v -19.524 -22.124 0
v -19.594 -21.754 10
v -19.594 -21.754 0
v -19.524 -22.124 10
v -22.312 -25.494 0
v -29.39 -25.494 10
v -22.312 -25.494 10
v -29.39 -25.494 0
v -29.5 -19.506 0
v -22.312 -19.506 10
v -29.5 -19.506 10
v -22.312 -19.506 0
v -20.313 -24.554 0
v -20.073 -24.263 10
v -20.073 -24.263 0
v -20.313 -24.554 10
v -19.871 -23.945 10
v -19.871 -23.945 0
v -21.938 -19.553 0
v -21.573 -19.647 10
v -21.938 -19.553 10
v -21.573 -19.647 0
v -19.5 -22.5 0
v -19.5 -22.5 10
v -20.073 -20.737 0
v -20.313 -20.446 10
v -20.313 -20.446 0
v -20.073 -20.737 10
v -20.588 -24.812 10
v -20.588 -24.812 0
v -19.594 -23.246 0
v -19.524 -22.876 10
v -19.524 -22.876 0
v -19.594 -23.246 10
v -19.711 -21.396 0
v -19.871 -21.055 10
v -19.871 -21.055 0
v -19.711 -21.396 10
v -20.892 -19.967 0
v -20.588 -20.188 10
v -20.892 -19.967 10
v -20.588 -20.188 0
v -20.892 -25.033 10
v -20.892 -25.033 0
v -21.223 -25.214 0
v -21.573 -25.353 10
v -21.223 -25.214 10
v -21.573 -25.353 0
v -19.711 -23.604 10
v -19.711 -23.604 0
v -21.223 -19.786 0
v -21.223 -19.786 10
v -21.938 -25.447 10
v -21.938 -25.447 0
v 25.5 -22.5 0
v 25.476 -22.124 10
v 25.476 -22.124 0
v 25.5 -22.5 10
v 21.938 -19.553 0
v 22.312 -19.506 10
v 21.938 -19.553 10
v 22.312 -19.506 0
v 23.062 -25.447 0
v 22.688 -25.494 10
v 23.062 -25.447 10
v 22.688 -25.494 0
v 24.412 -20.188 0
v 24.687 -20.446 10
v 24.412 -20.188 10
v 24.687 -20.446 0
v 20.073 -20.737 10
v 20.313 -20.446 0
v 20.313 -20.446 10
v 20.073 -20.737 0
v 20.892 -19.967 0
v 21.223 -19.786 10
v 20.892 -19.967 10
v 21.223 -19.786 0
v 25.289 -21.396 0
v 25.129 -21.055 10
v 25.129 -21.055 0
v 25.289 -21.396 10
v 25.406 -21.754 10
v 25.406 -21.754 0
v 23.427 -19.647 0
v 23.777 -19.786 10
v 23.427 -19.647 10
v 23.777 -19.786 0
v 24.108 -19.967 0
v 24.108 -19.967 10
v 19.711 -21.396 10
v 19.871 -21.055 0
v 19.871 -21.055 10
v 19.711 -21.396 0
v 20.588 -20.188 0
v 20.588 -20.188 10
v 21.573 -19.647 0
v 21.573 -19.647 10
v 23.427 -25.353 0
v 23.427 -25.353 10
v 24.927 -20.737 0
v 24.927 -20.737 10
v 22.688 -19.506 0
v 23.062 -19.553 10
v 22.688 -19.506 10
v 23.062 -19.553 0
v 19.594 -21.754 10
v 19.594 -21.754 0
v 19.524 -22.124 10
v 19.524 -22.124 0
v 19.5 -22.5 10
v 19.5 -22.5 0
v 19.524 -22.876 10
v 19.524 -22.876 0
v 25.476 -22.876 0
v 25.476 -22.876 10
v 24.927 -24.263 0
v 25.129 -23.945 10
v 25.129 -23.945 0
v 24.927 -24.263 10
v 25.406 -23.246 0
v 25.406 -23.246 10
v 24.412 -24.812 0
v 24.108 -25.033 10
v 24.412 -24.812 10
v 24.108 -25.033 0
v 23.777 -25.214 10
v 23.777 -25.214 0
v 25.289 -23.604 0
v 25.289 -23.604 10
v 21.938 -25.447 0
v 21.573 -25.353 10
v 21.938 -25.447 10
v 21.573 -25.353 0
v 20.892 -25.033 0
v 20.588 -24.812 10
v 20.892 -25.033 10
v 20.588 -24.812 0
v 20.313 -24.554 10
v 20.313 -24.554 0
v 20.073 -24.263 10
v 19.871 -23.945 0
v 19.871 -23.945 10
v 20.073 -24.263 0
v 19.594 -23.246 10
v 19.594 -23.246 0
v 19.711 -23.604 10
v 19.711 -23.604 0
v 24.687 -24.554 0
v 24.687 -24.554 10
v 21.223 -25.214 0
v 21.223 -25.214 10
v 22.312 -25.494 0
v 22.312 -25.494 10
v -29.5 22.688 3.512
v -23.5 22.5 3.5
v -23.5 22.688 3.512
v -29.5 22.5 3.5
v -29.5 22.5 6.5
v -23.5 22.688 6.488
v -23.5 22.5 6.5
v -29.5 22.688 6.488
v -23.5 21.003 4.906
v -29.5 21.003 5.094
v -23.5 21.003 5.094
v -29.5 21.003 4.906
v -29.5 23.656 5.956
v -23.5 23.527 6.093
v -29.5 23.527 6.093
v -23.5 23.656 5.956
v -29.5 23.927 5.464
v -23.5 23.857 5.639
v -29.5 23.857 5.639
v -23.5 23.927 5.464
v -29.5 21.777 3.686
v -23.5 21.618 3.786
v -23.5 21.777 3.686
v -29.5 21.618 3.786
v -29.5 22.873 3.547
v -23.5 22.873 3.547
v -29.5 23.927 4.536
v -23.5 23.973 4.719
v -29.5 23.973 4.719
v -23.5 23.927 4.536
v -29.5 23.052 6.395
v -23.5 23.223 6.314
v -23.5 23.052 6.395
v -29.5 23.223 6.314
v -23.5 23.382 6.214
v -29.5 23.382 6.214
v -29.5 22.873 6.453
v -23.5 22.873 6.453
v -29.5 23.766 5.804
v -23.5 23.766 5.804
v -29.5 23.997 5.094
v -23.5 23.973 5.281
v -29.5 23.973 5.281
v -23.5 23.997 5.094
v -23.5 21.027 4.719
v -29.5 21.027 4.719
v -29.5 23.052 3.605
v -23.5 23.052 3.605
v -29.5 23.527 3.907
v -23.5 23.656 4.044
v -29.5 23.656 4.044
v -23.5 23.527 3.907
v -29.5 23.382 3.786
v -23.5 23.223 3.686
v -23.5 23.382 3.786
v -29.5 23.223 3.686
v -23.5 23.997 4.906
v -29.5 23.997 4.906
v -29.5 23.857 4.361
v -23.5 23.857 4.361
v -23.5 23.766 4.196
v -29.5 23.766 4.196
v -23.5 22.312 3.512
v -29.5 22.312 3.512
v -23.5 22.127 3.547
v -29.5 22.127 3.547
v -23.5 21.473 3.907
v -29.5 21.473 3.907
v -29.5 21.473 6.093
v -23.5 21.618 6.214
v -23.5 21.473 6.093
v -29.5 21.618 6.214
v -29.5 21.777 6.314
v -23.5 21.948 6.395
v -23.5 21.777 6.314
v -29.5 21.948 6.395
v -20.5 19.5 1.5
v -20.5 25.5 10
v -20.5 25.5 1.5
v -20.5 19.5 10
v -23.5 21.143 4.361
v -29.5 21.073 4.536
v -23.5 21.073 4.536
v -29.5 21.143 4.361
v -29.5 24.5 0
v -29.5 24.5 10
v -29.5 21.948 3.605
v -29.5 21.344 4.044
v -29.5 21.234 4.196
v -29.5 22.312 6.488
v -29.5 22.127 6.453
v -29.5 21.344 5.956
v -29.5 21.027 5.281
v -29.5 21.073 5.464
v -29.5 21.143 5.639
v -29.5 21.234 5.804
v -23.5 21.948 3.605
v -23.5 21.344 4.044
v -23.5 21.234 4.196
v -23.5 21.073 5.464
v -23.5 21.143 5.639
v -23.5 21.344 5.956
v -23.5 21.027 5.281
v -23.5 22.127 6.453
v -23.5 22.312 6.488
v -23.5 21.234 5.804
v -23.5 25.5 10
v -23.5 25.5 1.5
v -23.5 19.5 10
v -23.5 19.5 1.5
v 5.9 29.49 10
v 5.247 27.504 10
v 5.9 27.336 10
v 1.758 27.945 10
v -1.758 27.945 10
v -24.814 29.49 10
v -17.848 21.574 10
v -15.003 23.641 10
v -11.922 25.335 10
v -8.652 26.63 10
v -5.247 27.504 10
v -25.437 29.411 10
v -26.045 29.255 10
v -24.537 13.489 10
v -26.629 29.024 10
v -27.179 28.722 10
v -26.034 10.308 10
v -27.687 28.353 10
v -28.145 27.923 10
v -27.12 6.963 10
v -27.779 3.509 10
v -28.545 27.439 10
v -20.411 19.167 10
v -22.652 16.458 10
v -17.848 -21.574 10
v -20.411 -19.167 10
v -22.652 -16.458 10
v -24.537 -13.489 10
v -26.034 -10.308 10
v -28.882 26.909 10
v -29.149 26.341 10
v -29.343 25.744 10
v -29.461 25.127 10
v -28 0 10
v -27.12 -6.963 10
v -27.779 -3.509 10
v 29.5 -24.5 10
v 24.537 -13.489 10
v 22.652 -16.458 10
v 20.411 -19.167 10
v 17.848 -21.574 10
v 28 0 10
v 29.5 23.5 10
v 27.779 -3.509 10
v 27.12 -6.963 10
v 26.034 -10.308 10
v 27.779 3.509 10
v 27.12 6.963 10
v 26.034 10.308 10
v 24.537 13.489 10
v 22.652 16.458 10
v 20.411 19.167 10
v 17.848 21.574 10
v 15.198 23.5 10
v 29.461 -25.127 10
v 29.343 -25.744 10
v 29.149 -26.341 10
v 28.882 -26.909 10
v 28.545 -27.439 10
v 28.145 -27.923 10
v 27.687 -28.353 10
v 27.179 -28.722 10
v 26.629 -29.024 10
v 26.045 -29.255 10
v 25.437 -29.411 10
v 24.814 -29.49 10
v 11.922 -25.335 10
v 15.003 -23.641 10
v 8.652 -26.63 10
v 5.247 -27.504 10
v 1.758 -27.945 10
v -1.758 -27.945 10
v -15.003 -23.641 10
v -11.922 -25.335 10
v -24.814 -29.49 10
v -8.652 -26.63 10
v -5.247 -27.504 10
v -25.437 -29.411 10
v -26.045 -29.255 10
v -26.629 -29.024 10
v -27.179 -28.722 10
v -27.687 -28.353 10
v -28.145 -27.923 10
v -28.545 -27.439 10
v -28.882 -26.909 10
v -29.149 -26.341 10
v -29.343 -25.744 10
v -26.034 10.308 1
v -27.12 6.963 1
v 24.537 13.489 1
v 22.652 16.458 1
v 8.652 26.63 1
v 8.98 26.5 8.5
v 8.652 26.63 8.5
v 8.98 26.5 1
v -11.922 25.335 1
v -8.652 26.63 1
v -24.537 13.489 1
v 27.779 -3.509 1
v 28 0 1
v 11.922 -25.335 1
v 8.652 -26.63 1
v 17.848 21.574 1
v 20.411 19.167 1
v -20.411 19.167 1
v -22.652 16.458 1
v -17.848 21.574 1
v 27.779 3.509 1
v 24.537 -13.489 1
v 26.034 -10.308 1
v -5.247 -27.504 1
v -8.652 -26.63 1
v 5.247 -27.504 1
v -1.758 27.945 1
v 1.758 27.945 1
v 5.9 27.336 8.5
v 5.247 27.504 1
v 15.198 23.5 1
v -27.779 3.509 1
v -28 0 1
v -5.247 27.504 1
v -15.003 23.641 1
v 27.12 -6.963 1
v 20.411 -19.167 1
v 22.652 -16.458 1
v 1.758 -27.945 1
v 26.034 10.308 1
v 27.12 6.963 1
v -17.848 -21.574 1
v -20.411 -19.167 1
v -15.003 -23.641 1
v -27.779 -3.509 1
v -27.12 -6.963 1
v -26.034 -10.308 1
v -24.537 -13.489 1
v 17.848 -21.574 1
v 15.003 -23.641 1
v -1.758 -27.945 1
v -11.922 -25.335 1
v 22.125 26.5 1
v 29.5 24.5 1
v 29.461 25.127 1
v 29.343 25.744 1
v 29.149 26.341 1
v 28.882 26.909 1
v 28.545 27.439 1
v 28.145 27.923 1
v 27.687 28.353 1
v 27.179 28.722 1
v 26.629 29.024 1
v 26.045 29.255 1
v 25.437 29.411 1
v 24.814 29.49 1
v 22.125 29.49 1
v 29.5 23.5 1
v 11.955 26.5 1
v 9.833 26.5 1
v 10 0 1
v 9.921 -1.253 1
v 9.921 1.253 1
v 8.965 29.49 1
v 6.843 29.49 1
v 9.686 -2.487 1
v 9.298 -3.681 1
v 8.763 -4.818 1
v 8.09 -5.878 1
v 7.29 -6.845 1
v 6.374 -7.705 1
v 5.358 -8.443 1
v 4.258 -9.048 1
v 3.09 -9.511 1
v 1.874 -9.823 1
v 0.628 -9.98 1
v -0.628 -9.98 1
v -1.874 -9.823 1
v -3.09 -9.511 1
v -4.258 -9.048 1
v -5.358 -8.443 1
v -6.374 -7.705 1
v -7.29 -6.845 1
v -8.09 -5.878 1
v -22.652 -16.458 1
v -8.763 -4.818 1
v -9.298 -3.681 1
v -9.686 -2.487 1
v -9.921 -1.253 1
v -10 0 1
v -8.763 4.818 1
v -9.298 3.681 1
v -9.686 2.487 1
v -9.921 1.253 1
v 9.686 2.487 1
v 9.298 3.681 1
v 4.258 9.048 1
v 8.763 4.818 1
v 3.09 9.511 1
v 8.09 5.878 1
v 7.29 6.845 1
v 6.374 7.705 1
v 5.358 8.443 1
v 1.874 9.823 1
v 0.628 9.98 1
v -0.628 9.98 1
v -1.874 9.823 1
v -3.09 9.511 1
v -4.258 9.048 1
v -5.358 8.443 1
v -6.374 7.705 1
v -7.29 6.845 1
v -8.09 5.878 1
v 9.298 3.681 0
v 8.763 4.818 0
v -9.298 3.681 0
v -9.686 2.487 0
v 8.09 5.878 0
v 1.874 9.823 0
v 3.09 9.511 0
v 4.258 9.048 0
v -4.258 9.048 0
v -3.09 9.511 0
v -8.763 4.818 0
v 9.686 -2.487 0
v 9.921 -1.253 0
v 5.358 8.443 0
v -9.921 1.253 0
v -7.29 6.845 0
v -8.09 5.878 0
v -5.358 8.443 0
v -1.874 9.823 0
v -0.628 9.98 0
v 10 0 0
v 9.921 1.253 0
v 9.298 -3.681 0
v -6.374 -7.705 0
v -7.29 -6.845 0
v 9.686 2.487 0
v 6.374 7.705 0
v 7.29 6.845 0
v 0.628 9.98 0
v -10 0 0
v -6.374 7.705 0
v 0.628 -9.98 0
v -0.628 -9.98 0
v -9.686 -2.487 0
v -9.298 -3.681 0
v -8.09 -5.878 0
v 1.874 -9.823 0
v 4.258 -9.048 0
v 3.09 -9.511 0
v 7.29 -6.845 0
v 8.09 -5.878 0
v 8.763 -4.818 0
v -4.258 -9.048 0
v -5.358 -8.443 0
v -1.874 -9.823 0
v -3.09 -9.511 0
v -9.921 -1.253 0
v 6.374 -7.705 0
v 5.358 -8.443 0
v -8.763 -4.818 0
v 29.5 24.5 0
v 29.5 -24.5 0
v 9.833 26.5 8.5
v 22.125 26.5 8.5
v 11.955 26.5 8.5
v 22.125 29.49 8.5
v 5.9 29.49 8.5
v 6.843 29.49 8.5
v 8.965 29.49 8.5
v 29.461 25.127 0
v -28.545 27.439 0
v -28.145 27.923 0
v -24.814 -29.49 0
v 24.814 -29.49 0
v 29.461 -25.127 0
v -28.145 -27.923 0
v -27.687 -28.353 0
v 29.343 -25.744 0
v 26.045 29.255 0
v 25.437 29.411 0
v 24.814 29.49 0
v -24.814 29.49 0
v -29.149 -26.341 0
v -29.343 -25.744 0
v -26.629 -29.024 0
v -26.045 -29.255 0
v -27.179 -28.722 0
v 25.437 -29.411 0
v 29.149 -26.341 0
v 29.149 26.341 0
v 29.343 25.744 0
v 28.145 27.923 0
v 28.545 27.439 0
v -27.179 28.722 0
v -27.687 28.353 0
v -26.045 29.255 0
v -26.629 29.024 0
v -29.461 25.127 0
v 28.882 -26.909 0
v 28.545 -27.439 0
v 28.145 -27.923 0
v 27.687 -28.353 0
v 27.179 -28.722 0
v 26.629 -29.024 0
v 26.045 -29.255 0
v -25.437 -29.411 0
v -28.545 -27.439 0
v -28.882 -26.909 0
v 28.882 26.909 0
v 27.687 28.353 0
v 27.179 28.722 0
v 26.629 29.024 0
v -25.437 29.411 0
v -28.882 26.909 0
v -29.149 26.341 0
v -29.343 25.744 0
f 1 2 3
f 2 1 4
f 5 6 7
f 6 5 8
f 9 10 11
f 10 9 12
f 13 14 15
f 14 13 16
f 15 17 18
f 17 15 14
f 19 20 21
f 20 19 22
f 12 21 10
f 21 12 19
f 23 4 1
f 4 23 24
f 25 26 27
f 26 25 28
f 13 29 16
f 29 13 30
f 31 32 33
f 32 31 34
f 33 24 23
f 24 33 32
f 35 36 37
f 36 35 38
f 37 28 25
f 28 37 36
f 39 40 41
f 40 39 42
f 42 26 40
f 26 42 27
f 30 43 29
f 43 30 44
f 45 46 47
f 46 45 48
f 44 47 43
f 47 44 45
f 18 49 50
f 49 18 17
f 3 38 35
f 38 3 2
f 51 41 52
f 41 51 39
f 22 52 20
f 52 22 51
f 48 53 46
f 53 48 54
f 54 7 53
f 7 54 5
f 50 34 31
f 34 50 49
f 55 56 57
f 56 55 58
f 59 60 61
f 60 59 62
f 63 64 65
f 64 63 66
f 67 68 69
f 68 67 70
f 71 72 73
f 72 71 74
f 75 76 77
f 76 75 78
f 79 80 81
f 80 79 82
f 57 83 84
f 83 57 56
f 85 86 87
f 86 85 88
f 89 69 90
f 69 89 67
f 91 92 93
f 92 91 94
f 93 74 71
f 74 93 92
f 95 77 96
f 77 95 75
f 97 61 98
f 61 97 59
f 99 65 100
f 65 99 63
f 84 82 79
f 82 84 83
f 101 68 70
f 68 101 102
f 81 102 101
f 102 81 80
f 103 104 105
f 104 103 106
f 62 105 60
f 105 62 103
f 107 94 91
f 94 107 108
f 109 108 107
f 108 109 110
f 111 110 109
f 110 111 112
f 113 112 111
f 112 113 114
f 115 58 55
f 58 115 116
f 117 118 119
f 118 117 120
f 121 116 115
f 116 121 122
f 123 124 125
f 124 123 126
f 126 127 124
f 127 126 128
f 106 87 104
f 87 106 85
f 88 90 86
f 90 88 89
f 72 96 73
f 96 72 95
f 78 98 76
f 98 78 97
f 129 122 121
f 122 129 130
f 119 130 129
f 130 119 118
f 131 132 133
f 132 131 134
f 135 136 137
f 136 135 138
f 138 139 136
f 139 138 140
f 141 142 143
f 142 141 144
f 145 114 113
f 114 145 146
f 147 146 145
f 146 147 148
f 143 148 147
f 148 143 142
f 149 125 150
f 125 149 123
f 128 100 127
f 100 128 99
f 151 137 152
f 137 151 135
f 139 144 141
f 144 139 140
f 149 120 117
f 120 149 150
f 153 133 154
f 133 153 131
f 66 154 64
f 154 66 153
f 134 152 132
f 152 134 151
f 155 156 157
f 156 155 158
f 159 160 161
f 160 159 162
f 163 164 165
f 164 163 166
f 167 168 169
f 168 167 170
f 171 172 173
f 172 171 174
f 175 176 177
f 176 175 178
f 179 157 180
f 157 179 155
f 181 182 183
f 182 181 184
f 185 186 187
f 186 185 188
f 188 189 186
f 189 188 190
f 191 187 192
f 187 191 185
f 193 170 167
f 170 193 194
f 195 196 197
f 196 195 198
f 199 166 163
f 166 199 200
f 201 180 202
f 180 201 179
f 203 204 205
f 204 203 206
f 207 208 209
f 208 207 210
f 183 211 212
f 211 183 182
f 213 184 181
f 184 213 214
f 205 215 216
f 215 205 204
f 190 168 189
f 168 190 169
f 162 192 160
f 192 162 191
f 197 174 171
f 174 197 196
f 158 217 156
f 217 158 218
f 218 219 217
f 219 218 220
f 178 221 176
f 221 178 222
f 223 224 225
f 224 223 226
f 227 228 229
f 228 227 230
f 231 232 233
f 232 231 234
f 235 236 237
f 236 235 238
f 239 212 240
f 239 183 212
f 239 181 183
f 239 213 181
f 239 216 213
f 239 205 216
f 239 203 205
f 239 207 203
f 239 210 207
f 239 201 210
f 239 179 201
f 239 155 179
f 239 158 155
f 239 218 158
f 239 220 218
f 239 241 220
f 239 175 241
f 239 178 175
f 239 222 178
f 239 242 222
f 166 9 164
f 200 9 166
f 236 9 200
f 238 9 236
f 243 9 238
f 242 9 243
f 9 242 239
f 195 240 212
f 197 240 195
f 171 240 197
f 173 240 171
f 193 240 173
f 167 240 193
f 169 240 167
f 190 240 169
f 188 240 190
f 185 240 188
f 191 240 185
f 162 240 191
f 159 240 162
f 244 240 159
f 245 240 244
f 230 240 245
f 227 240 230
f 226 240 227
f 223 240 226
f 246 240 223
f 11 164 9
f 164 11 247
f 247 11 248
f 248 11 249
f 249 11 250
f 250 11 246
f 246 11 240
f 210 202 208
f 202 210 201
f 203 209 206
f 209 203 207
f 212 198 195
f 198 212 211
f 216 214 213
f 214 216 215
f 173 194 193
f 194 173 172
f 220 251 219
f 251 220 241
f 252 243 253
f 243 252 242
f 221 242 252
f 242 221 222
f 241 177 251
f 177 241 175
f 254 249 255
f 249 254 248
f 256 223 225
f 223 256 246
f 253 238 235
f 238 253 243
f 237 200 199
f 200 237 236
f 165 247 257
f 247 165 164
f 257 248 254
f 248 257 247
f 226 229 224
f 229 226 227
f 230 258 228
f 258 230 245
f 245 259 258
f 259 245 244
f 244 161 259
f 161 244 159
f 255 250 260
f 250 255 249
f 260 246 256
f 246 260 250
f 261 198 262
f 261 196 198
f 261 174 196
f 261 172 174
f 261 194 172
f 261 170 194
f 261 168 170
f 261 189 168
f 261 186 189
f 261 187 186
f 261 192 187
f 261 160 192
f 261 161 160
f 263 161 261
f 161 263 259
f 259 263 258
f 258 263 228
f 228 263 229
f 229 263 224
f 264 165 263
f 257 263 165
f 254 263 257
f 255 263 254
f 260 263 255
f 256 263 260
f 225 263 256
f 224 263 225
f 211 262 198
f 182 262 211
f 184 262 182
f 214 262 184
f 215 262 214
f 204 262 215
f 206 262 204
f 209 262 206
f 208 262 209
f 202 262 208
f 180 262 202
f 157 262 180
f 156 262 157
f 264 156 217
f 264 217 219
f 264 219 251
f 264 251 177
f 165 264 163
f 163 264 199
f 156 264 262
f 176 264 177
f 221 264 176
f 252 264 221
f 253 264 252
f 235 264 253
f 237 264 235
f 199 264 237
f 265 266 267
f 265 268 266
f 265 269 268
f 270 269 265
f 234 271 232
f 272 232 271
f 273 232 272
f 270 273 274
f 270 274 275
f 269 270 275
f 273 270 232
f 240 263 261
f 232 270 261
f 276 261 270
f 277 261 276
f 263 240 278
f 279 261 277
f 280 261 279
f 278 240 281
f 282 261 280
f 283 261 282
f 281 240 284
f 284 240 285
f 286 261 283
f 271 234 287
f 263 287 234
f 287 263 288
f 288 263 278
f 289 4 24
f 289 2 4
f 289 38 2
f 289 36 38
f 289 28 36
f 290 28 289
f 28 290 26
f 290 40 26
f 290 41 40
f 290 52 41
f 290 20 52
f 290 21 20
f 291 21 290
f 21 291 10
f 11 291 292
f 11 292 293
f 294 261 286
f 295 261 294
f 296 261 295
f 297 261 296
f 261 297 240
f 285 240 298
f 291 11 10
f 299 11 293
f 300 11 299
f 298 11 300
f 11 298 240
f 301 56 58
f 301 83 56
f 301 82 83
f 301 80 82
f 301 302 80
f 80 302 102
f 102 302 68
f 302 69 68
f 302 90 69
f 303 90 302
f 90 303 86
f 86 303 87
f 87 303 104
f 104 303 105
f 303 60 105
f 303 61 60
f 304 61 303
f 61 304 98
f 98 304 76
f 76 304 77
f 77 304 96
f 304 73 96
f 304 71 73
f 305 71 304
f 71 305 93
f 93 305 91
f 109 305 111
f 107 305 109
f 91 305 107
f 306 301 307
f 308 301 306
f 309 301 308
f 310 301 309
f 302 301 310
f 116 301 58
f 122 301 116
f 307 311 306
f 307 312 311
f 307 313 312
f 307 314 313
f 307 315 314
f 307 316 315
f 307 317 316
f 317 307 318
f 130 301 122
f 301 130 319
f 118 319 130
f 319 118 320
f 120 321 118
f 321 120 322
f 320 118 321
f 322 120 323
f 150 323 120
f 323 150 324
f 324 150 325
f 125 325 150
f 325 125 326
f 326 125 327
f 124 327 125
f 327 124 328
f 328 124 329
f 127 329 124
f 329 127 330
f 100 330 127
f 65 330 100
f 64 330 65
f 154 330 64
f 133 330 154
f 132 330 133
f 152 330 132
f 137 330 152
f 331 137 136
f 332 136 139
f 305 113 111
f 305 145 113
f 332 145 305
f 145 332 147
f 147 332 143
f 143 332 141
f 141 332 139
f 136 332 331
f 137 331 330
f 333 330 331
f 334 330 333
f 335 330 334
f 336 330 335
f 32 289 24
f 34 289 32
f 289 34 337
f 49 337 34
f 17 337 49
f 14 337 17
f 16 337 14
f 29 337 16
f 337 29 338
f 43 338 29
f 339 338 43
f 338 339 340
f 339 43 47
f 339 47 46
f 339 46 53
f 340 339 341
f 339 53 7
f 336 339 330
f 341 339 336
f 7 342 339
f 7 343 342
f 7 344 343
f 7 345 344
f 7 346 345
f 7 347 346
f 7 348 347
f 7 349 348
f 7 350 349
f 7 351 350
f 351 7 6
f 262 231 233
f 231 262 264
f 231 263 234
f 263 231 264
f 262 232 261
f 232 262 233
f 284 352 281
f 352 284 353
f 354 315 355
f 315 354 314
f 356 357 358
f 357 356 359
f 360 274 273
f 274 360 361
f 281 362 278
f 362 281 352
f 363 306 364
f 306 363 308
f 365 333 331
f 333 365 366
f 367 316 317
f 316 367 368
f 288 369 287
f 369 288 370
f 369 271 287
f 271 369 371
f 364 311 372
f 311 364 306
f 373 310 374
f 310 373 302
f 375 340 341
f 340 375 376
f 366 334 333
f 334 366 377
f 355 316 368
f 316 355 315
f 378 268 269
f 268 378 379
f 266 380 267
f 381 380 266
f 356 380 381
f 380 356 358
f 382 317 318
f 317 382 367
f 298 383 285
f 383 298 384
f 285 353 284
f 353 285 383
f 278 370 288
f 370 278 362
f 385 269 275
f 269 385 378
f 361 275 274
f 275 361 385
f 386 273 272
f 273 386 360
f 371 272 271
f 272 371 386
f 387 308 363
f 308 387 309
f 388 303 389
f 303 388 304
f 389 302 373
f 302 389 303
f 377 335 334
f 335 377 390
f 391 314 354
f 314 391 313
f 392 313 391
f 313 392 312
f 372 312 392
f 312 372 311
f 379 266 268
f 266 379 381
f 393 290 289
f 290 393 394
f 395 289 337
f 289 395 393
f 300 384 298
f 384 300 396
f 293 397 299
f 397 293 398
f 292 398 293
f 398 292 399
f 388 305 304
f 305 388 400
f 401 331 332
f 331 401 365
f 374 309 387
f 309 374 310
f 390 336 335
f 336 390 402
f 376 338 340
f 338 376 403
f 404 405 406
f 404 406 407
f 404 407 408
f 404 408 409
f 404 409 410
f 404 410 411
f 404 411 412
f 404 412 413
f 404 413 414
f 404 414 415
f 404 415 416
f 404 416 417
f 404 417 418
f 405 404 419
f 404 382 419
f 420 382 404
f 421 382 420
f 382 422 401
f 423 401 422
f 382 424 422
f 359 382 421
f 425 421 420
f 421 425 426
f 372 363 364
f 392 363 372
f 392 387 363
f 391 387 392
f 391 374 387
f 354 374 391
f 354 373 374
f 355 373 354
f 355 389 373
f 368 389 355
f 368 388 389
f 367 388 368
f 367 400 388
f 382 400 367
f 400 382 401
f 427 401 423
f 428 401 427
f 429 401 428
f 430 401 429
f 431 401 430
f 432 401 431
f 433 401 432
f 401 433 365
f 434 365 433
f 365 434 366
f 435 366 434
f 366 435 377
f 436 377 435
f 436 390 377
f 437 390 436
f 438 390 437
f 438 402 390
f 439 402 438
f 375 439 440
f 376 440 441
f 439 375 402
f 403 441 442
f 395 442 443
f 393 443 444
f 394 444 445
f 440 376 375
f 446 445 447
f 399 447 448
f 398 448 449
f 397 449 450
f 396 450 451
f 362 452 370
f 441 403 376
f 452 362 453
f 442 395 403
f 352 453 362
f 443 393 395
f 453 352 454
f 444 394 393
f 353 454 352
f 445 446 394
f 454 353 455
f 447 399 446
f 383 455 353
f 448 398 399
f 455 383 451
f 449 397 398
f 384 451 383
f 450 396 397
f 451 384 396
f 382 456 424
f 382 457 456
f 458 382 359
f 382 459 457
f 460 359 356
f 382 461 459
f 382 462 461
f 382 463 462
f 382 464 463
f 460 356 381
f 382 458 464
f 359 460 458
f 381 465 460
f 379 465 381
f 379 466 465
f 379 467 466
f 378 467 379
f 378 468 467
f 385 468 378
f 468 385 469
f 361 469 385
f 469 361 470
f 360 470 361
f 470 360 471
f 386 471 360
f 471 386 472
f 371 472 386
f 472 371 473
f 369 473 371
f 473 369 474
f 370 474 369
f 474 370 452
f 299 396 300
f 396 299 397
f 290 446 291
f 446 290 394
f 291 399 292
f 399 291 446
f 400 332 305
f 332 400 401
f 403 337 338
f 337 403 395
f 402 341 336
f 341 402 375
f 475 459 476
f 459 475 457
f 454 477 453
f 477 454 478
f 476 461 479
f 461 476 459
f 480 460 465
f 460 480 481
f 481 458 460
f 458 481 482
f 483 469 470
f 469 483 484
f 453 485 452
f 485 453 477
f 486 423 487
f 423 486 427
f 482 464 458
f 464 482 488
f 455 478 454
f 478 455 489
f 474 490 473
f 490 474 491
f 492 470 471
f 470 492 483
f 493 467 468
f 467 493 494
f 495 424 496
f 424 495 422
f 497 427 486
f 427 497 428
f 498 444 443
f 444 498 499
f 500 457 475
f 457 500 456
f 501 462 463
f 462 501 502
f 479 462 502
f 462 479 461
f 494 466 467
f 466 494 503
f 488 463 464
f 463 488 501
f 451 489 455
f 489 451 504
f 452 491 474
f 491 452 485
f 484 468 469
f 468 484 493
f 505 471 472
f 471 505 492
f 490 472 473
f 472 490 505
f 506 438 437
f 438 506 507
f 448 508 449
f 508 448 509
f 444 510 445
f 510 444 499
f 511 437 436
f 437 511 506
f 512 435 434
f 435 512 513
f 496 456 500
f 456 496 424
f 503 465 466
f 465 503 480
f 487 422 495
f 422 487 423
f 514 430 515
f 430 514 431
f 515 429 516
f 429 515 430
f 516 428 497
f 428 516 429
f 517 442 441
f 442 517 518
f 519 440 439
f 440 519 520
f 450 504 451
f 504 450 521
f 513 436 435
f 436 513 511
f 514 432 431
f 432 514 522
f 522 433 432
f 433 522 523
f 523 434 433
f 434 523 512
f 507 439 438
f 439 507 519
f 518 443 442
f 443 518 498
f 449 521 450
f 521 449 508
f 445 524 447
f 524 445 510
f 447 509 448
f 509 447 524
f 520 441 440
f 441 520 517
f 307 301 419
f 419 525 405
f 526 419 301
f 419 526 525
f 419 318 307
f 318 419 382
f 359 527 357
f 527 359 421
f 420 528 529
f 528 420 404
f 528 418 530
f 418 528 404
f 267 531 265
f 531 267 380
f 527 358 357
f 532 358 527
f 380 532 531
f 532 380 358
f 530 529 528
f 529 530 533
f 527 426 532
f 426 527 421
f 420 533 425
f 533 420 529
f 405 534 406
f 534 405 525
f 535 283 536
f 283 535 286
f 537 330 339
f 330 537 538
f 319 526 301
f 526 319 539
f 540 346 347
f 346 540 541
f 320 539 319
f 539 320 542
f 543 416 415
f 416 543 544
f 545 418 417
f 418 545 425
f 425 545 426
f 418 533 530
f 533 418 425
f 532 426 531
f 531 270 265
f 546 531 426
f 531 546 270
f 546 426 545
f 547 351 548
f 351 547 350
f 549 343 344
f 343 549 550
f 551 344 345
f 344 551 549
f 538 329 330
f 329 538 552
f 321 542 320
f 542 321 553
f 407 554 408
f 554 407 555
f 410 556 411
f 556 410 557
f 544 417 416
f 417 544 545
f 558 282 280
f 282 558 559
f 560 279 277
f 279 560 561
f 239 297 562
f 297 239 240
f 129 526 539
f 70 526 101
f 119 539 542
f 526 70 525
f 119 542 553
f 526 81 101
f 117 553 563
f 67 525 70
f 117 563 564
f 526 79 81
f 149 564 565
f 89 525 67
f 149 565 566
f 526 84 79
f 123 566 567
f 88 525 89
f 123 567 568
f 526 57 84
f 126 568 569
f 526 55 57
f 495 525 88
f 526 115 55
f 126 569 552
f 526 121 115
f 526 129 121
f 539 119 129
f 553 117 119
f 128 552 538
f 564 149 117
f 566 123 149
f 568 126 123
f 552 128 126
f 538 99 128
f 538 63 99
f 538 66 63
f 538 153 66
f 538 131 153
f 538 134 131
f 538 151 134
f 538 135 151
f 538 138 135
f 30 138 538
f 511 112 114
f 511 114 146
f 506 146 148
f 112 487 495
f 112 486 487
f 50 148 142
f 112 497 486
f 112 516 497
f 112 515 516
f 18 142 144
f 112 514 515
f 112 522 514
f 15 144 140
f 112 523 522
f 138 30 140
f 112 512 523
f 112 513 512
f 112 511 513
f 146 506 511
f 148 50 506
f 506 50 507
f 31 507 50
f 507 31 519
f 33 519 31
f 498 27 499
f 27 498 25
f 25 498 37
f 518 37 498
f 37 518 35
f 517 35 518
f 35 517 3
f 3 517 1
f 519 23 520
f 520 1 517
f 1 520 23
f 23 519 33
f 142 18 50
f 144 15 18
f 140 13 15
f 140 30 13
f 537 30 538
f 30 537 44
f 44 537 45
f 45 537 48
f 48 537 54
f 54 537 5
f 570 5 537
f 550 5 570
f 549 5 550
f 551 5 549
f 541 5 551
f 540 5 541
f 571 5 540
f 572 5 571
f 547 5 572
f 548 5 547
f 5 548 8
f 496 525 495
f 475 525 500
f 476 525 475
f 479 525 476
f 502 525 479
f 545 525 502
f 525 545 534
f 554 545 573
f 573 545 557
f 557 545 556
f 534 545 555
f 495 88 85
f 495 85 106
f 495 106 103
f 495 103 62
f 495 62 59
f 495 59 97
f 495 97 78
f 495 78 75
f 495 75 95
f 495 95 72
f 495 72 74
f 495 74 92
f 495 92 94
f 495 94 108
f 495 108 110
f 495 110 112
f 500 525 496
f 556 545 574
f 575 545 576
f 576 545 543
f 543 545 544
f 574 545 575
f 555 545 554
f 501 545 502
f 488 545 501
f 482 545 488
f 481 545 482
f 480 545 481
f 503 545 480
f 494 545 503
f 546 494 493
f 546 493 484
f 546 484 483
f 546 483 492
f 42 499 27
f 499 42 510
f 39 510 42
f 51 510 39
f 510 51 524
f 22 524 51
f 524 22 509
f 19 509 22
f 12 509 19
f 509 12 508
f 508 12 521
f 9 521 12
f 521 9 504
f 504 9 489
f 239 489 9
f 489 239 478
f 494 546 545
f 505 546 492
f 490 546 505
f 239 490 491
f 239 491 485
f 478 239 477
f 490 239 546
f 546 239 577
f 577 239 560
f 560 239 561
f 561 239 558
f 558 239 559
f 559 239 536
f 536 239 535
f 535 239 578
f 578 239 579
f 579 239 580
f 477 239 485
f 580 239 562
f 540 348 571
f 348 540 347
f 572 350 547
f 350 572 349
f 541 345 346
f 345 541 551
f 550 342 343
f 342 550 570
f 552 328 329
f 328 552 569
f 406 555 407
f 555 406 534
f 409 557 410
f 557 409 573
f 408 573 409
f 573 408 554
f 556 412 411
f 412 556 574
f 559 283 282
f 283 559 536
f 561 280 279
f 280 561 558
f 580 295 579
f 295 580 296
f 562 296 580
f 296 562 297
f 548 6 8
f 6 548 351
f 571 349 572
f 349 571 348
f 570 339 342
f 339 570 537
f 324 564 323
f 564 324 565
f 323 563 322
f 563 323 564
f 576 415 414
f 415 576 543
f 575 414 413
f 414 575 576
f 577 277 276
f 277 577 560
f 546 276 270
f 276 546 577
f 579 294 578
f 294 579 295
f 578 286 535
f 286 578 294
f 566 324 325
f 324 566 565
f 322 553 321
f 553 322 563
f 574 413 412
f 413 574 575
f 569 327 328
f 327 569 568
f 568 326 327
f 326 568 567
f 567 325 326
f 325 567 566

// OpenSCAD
$fn = 50;


difference() {
	union() {
		translate(v = [0, 0, 0]) {
			rotate(a = [0, 0, 0]) {
				hull() {
					translate(v = [-24.5000000000, 24.5000000000, 0]) {
						rotate(a = [0, 0, 0]) {
							translate(v = [0, 0, 0]) {
								rotate(a = [0, 0, 0]) {
									cylinder(h = 10, r = 5);
								}
							}
						}
					}
					translate(v = [24.5000000000, 24.5000000000, 0]) {
						rotate(a = [0, 0, 0]) {
							translate(v = [0, 0, 0]) {
								rotate(a = [0, 0, 0]) {
									cylinder(h = 10, r = 5);
								}
							}
						}
					}
					translate(v = [-24.5000000000, -24.5000000000, 0]) {
						rotate(a = [0, 0, 0]) {
							translate(v = [0, 0, 0]) {
								rotate(a = [0, 0, 0]) {
									cylinder(h = 10, r = 5);
								}
							}
						}
					}
					translate(v = [24.5000000000, -24.5000000000, 0]) {
						rotate(a = [0, 0, 0]) {
							translate(v = [0, 0, 0]) {
								rotate(a = [0, 0, 0]) {
									cylinder(h = 10, r = 5);
								}
							}
						}
					}
				}
			}
		}
	}
	union() {
		translate(v = [-30.0000000000, -22.5000000000, -125]) {
			rotate(a = [0, 0, 0]) {
				hull() {
					translate(v = [7.5000000000, 0, 0]) {
						rotate(a = [0, 0, 0]) {
							translate(v = [0, 0, 0]) {
								rotate(a = [0, 0, 0]) {
									cylinder(h = 250, r = 3.0000000000);
								}
							}
						}
					}
					translate(v = [-7.5000000000, 0, 0]) {
						rotate(a = [0, 0, 0]) {
							translate(v = [0, 0, 0]) {
								rotate(a = [0, 0, 0]) {
									cylinder(h = 250, r = 3.0000000000);
								}
							}
						}
					}
				}
			}
		}
		translate(v = [22.5000000000, -22.5000000000, -125.0000000000]) {
			rotate(a = [0, 0, 0]) {
				cylinder(h = 250, r = 3.0000000000);
			}
		}
		translate(v = [-29.5000000000, 22.5000000000, 5.0000000000]) {
			rotate(a = [0, 90, 0]) {
				cylinder(h = 9, r = 1.5000000000);
			}
		}
		translate(v = [-23.5000000000, 19.5000000000, 1.5000000000]) {
			rotate(a = [0, 0, 0]) {
				cube(size = [3, 6, 8.5000000000]);
			}
		}
		translate(v = [0, 0, 1.0000000000]) {
			rotate(a = [0, 0, 0]) {
				cylinder(h = 12, r = 28.0000000000);
			}
		}
		translate(v = [0, 0, -5.0000000000]) {
			rotate(a = [0, 0, 0]) {
				cylinder(h = 10, r = 10.0000000000);
			}
		}
		translate(v = [0.0000000000, 23.5000000000, 1]) {
			rotate(a = [0, 0, 0]) {
				cube(size = [29.5000000000, 3, 12]);
			}
		}
		translate(v = [22.1250000000, 23.5000000000, 1]) {
			rotate(a = [0, 0, 0]) {
				cube(size = [7.3750000000, 6, 12]);
			}
		}
		translate(v = [5.9000000000, 23.5000000000, 8.5000000000]) {
			rotate(a = [0, 0, 0]) {
				cube(size = [23.6000000000, 6, 1.5000000000]);
			}
		}
		translate(v = [6.0833333333, 30.2500000000, 1]) {
			rotate(a = [0, 0, -45]) {
				cube(size = [7.5000000000, 1.5000000000, 12]);
			}
		}
	}
}
